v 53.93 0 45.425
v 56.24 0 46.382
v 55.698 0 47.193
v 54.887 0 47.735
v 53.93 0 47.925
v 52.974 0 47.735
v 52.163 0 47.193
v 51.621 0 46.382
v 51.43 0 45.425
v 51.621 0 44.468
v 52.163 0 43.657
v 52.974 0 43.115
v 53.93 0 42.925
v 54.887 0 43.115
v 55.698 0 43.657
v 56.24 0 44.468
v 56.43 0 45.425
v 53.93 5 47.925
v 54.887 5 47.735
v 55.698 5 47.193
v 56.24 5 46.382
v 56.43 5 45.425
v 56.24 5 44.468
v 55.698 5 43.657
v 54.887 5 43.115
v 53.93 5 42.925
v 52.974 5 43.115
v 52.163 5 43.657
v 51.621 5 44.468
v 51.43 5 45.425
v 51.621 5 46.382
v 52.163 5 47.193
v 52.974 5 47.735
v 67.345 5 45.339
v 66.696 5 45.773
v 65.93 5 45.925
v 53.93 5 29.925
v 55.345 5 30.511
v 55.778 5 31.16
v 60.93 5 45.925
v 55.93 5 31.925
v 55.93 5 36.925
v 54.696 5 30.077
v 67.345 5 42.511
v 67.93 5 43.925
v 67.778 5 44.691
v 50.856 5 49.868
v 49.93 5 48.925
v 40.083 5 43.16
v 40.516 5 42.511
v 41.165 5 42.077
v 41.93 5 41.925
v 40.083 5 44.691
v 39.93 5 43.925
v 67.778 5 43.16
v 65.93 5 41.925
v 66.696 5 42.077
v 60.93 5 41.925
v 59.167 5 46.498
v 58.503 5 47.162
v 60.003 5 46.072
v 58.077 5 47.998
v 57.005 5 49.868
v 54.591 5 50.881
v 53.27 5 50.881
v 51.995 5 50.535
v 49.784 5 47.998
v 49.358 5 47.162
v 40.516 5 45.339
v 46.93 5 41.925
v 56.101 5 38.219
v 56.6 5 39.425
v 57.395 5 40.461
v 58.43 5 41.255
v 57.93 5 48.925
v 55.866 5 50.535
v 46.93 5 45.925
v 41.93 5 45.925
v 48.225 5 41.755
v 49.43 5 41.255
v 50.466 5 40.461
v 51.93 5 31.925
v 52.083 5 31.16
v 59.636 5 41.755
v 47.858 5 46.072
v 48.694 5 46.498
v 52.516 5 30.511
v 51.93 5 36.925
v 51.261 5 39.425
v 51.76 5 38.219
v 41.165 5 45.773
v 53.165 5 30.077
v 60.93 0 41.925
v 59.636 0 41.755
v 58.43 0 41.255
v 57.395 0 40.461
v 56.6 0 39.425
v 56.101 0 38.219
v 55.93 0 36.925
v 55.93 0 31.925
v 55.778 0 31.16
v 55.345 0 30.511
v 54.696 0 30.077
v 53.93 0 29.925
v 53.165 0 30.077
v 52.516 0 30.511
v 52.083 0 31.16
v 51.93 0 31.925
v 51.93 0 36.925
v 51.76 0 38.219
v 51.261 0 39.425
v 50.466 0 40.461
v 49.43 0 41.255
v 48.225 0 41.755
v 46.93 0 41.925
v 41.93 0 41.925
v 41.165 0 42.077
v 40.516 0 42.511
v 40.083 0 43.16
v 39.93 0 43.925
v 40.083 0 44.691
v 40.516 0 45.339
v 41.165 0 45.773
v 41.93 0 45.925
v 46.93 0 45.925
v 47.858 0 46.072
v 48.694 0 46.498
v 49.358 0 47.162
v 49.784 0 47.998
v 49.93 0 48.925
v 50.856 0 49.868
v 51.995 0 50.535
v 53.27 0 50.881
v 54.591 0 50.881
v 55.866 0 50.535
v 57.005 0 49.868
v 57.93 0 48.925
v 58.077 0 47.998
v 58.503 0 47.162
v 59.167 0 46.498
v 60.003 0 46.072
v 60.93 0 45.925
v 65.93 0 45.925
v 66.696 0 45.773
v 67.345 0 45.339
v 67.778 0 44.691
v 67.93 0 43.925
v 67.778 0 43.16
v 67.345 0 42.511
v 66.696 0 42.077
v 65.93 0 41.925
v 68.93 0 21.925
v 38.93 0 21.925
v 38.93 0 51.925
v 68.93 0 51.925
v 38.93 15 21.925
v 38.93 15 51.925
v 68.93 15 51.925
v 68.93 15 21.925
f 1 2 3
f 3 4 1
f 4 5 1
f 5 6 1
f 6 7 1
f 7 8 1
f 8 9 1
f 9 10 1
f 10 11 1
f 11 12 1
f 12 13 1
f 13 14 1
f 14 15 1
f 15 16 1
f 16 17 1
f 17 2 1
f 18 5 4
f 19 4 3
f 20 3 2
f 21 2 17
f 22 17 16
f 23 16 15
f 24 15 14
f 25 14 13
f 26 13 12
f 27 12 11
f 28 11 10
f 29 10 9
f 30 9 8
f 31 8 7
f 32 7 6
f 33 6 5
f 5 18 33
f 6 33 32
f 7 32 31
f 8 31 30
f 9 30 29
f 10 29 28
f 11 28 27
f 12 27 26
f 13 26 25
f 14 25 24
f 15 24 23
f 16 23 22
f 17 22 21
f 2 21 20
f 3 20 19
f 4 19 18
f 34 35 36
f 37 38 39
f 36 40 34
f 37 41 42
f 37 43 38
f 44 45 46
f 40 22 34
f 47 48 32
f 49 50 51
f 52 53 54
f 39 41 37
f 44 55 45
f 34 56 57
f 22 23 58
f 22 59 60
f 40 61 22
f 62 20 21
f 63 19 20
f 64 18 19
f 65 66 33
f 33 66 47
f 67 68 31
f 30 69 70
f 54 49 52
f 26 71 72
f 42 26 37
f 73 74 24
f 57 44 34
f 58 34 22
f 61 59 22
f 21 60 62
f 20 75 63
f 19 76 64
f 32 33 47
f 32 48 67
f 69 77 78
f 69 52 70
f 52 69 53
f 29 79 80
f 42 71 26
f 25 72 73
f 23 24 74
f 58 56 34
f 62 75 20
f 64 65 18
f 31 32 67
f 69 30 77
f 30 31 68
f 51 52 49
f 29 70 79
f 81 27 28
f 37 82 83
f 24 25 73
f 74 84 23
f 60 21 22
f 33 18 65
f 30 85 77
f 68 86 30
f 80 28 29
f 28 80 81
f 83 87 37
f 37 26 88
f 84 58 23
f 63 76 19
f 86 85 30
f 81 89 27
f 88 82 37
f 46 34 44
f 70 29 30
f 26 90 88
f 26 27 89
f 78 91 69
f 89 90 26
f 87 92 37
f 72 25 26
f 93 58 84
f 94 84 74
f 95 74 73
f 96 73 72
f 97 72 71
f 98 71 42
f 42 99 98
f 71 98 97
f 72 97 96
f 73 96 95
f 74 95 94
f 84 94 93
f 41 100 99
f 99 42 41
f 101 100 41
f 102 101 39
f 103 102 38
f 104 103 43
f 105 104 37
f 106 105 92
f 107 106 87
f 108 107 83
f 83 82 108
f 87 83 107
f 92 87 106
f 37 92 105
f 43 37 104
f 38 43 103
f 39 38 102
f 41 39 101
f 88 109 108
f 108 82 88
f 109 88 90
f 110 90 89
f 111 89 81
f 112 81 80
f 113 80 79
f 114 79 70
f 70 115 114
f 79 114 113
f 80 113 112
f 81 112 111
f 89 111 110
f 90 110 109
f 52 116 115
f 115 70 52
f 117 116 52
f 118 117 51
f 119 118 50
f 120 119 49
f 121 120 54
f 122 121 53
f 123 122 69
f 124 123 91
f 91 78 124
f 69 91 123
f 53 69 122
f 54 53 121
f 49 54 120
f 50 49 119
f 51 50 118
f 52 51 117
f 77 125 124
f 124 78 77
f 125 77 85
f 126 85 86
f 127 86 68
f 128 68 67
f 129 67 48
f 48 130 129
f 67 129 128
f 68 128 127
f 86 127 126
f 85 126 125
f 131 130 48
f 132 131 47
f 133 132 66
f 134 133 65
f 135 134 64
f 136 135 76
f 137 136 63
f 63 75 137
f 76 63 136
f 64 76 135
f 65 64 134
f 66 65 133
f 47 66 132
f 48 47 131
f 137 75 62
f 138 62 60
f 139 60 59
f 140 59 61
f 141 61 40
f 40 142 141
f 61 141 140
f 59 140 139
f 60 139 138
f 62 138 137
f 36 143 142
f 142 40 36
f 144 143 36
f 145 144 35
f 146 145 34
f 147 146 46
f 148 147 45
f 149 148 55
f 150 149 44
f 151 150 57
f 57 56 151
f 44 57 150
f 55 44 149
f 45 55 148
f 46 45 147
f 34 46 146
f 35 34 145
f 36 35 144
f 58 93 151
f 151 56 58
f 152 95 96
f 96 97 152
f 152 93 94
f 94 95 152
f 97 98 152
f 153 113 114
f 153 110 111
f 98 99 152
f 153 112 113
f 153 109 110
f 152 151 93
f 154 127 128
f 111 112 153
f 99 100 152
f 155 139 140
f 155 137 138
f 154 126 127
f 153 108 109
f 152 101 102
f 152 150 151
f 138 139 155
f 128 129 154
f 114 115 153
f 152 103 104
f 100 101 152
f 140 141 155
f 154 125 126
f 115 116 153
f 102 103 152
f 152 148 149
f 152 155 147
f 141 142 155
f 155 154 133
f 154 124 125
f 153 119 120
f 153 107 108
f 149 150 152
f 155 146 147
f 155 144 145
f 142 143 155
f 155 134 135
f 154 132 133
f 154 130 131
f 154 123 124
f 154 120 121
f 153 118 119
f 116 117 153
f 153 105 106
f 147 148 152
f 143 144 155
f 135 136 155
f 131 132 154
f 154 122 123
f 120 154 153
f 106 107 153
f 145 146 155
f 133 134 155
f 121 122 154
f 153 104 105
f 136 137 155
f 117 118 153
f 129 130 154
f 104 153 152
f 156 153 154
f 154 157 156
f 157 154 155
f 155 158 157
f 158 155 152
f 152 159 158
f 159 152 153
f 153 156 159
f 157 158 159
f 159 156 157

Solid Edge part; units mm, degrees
sketch "Sketch1" plane through (0, 0, 0) normal (0, -1, 0) x (1, 0, 0)
  line L0 (38.9305, 51.9251) -> (68.9305, 51.9251)
  line L1 (68.9305, 51.9251) -> (68.9305, 21.9251)
  line L2 (68.9305, 21.9251) -> (38.9305, 21.9251)
  line L3 (38.9305, 21.9251) -> (38.9305, 51.9251)
  dimension "D1" = 30
  dimension "D2" = 30
extrude "Protrusion1" add sketch "Sketch1" against normal blind 15
sketch "Sketch2" plane through (63.9305, 0, 41.9251) normal (0, -1, 0) x (1, 0, 0)
  line L0 (-8, -5) -> (-8, -10)
  arc A0 (-8, -10) -> (-12, -10) centre (-10, -10) cw
  line L1 (-12, -10) -> (-12, -5)
  arc A1 (-12, -5) -> (-17, 0) centre (-17, -5) ccw
  line L2 (-17, 0) -> (-22, 0)
  arc A2 (-22, 0) -> (-22, 4) centre (-22, 2) cw
  line L3 (-22, 4) -> (-17, 4)
  arc A3 (-17, 4) -> (-14, 7) centre (-17, 7) ccw
  arc A4 (-14, 7) -> (-6, 7) centre (-10, 4) cw
  arc A5 (-3, 4) -> (-6, 7) centre (-3, 7) cw
  line L4 (2, 4) -> (-3, 4)
  arc A6 (2, 0) -> (2, 4) centre (2, 2) ccw
  line L5 (-3, 0) -> (2, 0)
  arc A7 (-8, -5) -> (-3, 0) centre (-3, -5) cw
  dimension "D1" = 5
  dimension "D2" = 10
  dimension "D3" = 2
  dimension "D4" = 2
  dimension "D5" = 5
  dimension "D6" = 5
  dimension "D7" = 5
  dimension "D8" = 2
  dimension "D9" = 5
  dimension "D10" = 5
  dimension "D11" = 2
  dimension "D12" = 5
  dimension "D13" = 5
  dimension "D14" = 3
  dimension "D15" = 5
  dimension "D16" = 3
extrude "ExtrudedCutout_4" cut sketch "Sketch2" against normal blind 5
sketch "Sketch3" plane through (63.9305, 5, 35.4251) normal (0, -1, 0) x (1, 0, 0)
  circle A0 centre (-10, 10) radius 2.5
  dimension "D1" = 5.5
extrude "ExtrudedProtrusion_3" add sketch "Sketch3" along normal blind 5
